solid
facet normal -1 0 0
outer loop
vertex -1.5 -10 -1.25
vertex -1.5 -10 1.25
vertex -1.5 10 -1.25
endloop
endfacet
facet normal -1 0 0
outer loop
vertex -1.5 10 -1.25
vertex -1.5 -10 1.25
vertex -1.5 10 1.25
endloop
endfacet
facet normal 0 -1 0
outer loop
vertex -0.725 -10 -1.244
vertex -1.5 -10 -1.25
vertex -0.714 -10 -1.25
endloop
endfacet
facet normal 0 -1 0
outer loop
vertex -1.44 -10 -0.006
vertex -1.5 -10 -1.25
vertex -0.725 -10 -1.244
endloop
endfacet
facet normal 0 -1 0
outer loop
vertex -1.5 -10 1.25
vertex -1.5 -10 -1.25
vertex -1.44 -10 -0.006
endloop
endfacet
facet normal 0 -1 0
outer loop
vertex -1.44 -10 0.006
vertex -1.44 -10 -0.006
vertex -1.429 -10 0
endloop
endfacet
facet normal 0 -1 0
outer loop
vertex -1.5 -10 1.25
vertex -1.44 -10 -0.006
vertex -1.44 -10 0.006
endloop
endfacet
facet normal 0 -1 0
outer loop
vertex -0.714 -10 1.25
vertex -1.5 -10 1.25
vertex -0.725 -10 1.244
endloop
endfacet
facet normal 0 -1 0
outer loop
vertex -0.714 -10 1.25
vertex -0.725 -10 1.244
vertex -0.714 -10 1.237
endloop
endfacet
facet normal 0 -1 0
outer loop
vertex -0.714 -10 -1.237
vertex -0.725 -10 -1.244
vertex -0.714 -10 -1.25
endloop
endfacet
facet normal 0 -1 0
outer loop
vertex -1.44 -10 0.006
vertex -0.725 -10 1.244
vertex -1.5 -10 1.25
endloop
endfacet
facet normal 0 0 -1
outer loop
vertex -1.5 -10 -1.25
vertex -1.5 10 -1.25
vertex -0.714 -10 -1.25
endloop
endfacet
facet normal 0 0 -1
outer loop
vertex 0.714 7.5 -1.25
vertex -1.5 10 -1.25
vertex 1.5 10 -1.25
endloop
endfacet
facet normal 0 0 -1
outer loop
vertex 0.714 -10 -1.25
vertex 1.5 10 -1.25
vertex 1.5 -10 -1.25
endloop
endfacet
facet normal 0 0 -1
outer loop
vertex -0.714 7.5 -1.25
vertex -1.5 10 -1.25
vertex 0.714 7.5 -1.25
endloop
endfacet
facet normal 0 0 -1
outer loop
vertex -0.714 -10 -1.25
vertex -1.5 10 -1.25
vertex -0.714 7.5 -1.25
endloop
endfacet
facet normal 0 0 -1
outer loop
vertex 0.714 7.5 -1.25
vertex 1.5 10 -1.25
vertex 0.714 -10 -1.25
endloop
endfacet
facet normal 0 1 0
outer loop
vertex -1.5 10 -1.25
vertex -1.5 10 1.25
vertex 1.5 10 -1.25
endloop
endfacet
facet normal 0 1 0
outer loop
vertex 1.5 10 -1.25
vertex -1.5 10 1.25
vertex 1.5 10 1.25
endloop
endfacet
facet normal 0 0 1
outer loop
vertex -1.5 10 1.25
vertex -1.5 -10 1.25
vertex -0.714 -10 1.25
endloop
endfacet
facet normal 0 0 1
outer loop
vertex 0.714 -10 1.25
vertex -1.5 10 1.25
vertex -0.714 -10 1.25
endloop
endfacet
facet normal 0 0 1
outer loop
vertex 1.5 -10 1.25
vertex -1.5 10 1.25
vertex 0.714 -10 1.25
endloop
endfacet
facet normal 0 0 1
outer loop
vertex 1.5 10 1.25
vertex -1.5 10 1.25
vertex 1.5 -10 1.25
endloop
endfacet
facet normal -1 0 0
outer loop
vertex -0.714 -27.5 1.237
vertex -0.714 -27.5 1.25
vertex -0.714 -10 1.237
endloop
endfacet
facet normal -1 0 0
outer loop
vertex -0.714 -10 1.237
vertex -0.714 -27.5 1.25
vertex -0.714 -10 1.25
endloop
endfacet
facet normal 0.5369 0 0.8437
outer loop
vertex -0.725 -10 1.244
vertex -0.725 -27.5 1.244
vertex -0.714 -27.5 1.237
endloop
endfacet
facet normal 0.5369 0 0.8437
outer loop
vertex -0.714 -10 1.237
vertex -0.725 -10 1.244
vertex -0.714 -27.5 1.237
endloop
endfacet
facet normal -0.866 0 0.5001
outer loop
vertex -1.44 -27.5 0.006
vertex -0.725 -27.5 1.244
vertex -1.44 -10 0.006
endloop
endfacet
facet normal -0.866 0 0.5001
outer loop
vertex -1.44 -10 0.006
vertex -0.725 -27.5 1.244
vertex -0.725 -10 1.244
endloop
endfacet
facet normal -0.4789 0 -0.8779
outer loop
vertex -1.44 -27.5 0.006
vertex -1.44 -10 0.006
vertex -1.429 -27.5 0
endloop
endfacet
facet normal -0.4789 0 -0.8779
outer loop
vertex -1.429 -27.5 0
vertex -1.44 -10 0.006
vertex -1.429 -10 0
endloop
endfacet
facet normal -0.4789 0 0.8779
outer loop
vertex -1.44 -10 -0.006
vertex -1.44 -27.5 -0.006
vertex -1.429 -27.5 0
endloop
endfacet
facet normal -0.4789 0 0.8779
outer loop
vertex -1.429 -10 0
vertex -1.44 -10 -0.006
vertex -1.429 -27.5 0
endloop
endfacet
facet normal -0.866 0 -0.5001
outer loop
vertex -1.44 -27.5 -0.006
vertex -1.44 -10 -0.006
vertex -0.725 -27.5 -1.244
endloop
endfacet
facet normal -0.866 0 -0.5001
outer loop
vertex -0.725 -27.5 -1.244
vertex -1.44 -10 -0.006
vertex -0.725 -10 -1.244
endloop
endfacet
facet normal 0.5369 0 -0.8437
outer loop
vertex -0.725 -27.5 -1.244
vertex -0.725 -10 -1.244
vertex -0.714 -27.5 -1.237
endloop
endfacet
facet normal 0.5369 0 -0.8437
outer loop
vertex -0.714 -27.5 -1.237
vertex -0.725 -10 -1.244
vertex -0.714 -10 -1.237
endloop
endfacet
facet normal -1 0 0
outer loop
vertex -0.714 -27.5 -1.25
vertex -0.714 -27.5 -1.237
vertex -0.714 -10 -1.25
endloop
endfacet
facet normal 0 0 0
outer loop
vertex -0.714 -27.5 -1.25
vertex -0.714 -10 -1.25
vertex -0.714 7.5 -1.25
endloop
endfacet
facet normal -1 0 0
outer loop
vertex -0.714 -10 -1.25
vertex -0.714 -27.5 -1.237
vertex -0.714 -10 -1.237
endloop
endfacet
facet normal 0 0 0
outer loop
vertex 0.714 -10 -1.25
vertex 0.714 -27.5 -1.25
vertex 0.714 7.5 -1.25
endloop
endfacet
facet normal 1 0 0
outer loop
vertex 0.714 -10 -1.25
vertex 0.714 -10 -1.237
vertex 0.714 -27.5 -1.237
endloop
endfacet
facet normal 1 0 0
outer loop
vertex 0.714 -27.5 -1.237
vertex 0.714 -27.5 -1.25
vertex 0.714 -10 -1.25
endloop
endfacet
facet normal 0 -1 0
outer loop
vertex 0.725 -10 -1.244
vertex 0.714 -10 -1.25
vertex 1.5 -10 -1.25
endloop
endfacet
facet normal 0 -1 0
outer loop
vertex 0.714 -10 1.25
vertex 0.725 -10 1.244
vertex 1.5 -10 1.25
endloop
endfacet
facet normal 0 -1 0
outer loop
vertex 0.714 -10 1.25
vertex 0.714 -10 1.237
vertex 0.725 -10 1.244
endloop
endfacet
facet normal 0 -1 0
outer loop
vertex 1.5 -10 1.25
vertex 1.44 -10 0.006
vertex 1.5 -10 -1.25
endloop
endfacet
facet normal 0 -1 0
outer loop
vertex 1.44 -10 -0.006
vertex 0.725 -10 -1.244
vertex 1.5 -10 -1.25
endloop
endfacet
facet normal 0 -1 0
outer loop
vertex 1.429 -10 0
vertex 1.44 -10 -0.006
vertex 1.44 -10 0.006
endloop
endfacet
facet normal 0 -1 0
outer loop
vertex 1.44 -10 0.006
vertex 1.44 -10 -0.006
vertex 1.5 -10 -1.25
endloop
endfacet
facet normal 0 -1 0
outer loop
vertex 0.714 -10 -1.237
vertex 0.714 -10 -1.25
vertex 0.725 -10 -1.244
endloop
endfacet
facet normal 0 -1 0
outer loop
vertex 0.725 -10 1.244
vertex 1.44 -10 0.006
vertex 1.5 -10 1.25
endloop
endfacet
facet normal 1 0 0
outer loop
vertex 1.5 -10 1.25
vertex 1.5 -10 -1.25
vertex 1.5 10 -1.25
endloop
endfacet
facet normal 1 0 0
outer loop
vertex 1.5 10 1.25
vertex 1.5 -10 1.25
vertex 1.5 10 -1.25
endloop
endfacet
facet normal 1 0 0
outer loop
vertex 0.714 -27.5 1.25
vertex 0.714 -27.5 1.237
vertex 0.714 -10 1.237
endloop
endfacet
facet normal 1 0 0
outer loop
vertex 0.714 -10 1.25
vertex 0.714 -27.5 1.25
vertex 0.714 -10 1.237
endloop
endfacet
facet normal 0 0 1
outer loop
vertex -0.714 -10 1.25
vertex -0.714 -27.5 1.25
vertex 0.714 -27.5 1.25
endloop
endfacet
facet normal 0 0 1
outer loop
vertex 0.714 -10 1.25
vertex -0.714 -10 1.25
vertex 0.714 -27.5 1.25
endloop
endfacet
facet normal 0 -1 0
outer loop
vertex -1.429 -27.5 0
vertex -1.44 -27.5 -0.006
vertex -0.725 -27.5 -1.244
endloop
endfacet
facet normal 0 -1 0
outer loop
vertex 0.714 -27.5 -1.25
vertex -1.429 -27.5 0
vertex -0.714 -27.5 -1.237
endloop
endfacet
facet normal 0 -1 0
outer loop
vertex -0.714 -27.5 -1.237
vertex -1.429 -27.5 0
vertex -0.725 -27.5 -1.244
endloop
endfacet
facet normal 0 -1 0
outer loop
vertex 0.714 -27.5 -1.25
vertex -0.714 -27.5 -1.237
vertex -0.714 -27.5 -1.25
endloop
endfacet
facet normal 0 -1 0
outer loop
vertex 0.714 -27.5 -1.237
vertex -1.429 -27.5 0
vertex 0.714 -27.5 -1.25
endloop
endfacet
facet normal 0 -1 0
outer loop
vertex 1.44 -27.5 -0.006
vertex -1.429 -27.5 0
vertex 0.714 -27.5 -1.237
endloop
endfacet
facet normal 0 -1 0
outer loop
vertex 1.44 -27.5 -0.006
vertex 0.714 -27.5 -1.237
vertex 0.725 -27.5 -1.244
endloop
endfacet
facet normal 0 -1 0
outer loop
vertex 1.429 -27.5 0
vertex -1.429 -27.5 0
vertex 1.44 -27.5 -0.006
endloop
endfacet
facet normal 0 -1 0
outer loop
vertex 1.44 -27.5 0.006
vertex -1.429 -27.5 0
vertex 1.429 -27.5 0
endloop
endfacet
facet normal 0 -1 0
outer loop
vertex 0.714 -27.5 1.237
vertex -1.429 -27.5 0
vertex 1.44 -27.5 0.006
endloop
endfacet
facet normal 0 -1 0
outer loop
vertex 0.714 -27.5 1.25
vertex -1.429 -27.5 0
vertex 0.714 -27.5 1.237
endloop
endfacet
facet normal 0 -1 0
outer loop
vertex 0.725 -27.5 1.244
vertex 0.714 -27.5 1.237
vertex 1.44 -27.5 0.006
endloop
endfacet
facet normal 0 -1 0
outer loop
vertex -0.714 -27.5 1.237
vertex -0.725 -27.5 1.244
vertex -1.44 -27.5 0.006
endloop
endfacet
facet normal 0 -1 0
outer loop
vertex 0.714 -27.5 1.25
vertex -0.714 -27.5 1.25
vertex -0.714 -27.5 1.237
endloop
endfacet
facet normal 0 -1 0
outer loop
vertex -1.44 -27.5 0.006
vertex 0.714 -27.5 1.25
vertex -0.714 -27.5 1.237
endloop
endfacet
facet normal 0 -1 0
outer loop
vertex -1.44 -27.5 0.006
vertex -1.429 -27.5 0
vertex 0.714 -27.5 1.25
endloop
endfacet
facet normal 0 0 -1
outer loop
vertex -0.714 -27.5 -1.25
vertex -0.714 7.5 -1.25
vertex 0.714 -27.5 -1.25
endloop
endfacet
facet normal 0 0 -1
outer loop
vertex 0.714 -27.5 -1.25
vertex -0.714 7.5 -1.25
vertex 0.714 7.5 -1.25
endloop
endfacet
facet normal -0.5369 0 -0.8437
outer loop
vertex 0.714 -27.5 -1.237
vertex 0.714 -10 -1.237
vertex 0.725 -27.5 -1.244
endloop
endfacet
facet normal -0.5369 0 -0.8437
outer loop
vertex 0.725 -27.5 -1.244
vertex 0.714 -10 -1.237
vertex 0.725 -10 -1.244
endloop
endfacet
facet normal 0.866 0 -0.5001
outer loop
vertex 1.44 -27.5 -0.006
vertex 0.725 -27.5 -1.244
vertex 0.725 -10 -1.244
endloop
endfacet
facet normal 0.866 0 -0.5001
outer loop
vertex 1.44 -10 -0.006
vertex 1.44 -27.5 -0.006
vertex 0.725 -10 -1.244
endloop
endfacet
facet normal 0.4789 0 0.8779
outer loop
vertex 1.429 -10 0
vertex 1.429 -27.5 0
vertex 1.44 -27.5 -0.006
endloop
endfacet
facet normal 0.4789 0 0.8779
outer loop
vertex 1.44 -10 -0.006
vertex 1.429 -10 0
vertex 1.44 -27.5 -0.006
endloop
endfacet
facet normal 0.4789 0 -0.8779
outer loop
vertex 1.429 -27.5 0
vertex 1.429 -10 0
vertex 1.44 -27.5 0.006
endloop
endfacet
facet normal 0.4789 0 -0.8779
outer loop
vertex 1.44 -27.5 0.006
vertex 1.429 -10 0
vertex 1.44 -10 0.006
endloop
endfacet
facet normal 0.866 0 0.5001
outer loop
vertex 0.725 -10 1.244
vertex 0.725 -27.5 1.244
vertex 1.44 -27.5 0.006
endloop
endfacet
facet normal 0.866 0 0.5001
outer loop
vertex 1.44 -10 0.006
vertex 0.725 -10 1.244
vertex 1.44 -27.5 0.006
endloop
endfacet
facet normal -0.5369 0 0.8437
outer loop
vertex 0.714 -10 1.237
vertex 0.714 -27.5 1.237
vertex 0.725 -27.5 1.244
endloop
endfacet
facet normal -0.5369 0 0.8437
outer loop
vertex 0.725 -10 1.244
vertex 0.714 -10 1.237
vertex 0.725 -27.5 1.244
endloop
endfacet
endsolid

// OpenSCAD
// file: mcad/shapes.scad
/*
 *  OpenSCAD Shapes Library (www.openscad.org)
 *  Copyright (C) 2009  Catarina Mota
 *
 *  License: LGPL 2.1 or later
*/

// 2D Shapes
//ellipse(width, height);

// 3D Shapes
//box(width, height, depth);
//roundedBox(width, height, depth, factor);
//cone(height, radius);
//ellipticalCylinder(width, height, depth);
//ellipsoid(width, height); 
//tube(height, radius, wall);
//ovalTube(width, height, depth, wall);
//hexagon(height, depth);
//octagon(height, depth);
//dodecagon(height, depth);
//hexagram(height, depth);
//rightTriangle(adjacent, opposite, depth);
//equiTriangle(side, depth);
//12ptStar(height, depth);

//----------------------

// size is a vector [w, h, d]
module box(size) {
  cube(size, true);
}

// size is a vector [w, h, d]
module roundedBox(size, radius) {
  cube(size - [2*radius,0,0], true);
  cube(size - [0,2*radius,0], true);
  for (x = [radius-size[0]/2, -radius+size[0]/2],
       y = [radius-size[1]/2, -radius+size[1]/2]) {
    translate([x,y,0]) cylinder(r=radius, h=size[2], center=true);
  }
}

module cone(height, radius, center = false) {
  cylinder(height, radius, 0, center);
}

module ellipticalCylinder(w,h, height, center = false) {
  scale([1, h/w, 1]) cylinder(h=height, r=w, center=center);
}

module ellipse(w, h) {
  scale([1, h/w, 1]) circle(r=w, center=center);
}

module ellipsoid(w, h) {
  scale([1, h/w, 1]) sphere(r=w, center=center);
}

// wall is wall thickness
module tube(height, radius, wall, center = false) {
  difference() {
    cylinder(h=height, r=radius, center=center);
    cylinder(h=height, r=radius-wall, center=center);
  }
}

// wall is wall thickness
module ovalTube(height, rx, ry, wall, center = false) {
  difference() {
    scale([1, ry/rx, 1]) cylinder(h=height, r=rx, center=center);
    scale([(rx-wall)/rx, (ry-wall)/rx, 1]) cylinder(h=height, r=rx, center=center);
  }
}

// size is the XY plane size, height in Z
module hexagon(size, height) {
  boxWidth = size/1.75;
  for (r = [-60, 0, 60]) rotate([0,0,r]) cube([boxWidth, size, height], true);
}

// size is the XY plane size, height in Z
module octagon(size, height) {
  intersection() {
    cube([size, size, height], true);
    rotate([0,0,45]) cube([size, size, height], true);
  }
}

// size is the XY plane size, height in Z
module dodecagon(size, height) {
  intersection() {
    hexagon(size, height);
    rotate([0,0,90]) hexagon(size, height);
  }
}

// size is the XY plane size, height in Z
module hexagram(size, height) {
  boxWidth=size/1.75;
  for (v = [[0,1],[0,-1],[1,-1]]) {
    intersection() {
      rotate([0,0,60*v[0]]) cube([size, boxWidth, height], true);
      rotate([0,0,60*v[1]]) cube([size, boxWidth, height], true);
    }
  }
}

module rightTriangle(adjacent, opposite, height) {
  difference() {
    translate([-adjacent/2,opposite/2,0]) cube([adjacent, opposite, height], true);
    translate([-adjacent,0,0]) {
      rotate([0,0,atan(opposite/adjacent)]) dislocateBox(adjacent*2, opposite, height);
    }
  }
}

module equiTriangle(side, height) {
  difference() {
    translate([-side/2,side/2,0]) cube([side, side, height], true);
    rotate([0,0,30]) dislocateBox(side*2, side, height);
    translate([-side,0,0]) {
      rotate([0,0,60]) dislocateBox(side*2, side, height);
    }
  }
}

module 12ptStar(size, height) {
  starNum = 3;
  starAngle = 360/starNum;
  for (s = [1:starNum]) {
    rotate([0, 0, s*starAngle]) cube([size, size, height], true);
  }
}

//-----------------------
//MOVES THE ROTATION AXIS OF A BOX FROM ITS CENTER TO THE BOTTOM LEFT CORNER
//FIXME: Why are the dimensions changed?
// why not just translate([0,0,-d/2]) cube([w,h,d]);
module dislocateBox(w,h,d) {
  translate([w/2,h,0]) {
    difference() {
      cube([w, h*2, d+1]);
      translate([-w,0,0]) cube([w, h*2, d+1]);
    }
  }
}
// main file
use <mcad/shapes.scad>;

translate([0,-10,0]) rotate([90,0,0]) hexagon(size=2.5, height=35);
cube(size=[3,20,2.5],center=true);
